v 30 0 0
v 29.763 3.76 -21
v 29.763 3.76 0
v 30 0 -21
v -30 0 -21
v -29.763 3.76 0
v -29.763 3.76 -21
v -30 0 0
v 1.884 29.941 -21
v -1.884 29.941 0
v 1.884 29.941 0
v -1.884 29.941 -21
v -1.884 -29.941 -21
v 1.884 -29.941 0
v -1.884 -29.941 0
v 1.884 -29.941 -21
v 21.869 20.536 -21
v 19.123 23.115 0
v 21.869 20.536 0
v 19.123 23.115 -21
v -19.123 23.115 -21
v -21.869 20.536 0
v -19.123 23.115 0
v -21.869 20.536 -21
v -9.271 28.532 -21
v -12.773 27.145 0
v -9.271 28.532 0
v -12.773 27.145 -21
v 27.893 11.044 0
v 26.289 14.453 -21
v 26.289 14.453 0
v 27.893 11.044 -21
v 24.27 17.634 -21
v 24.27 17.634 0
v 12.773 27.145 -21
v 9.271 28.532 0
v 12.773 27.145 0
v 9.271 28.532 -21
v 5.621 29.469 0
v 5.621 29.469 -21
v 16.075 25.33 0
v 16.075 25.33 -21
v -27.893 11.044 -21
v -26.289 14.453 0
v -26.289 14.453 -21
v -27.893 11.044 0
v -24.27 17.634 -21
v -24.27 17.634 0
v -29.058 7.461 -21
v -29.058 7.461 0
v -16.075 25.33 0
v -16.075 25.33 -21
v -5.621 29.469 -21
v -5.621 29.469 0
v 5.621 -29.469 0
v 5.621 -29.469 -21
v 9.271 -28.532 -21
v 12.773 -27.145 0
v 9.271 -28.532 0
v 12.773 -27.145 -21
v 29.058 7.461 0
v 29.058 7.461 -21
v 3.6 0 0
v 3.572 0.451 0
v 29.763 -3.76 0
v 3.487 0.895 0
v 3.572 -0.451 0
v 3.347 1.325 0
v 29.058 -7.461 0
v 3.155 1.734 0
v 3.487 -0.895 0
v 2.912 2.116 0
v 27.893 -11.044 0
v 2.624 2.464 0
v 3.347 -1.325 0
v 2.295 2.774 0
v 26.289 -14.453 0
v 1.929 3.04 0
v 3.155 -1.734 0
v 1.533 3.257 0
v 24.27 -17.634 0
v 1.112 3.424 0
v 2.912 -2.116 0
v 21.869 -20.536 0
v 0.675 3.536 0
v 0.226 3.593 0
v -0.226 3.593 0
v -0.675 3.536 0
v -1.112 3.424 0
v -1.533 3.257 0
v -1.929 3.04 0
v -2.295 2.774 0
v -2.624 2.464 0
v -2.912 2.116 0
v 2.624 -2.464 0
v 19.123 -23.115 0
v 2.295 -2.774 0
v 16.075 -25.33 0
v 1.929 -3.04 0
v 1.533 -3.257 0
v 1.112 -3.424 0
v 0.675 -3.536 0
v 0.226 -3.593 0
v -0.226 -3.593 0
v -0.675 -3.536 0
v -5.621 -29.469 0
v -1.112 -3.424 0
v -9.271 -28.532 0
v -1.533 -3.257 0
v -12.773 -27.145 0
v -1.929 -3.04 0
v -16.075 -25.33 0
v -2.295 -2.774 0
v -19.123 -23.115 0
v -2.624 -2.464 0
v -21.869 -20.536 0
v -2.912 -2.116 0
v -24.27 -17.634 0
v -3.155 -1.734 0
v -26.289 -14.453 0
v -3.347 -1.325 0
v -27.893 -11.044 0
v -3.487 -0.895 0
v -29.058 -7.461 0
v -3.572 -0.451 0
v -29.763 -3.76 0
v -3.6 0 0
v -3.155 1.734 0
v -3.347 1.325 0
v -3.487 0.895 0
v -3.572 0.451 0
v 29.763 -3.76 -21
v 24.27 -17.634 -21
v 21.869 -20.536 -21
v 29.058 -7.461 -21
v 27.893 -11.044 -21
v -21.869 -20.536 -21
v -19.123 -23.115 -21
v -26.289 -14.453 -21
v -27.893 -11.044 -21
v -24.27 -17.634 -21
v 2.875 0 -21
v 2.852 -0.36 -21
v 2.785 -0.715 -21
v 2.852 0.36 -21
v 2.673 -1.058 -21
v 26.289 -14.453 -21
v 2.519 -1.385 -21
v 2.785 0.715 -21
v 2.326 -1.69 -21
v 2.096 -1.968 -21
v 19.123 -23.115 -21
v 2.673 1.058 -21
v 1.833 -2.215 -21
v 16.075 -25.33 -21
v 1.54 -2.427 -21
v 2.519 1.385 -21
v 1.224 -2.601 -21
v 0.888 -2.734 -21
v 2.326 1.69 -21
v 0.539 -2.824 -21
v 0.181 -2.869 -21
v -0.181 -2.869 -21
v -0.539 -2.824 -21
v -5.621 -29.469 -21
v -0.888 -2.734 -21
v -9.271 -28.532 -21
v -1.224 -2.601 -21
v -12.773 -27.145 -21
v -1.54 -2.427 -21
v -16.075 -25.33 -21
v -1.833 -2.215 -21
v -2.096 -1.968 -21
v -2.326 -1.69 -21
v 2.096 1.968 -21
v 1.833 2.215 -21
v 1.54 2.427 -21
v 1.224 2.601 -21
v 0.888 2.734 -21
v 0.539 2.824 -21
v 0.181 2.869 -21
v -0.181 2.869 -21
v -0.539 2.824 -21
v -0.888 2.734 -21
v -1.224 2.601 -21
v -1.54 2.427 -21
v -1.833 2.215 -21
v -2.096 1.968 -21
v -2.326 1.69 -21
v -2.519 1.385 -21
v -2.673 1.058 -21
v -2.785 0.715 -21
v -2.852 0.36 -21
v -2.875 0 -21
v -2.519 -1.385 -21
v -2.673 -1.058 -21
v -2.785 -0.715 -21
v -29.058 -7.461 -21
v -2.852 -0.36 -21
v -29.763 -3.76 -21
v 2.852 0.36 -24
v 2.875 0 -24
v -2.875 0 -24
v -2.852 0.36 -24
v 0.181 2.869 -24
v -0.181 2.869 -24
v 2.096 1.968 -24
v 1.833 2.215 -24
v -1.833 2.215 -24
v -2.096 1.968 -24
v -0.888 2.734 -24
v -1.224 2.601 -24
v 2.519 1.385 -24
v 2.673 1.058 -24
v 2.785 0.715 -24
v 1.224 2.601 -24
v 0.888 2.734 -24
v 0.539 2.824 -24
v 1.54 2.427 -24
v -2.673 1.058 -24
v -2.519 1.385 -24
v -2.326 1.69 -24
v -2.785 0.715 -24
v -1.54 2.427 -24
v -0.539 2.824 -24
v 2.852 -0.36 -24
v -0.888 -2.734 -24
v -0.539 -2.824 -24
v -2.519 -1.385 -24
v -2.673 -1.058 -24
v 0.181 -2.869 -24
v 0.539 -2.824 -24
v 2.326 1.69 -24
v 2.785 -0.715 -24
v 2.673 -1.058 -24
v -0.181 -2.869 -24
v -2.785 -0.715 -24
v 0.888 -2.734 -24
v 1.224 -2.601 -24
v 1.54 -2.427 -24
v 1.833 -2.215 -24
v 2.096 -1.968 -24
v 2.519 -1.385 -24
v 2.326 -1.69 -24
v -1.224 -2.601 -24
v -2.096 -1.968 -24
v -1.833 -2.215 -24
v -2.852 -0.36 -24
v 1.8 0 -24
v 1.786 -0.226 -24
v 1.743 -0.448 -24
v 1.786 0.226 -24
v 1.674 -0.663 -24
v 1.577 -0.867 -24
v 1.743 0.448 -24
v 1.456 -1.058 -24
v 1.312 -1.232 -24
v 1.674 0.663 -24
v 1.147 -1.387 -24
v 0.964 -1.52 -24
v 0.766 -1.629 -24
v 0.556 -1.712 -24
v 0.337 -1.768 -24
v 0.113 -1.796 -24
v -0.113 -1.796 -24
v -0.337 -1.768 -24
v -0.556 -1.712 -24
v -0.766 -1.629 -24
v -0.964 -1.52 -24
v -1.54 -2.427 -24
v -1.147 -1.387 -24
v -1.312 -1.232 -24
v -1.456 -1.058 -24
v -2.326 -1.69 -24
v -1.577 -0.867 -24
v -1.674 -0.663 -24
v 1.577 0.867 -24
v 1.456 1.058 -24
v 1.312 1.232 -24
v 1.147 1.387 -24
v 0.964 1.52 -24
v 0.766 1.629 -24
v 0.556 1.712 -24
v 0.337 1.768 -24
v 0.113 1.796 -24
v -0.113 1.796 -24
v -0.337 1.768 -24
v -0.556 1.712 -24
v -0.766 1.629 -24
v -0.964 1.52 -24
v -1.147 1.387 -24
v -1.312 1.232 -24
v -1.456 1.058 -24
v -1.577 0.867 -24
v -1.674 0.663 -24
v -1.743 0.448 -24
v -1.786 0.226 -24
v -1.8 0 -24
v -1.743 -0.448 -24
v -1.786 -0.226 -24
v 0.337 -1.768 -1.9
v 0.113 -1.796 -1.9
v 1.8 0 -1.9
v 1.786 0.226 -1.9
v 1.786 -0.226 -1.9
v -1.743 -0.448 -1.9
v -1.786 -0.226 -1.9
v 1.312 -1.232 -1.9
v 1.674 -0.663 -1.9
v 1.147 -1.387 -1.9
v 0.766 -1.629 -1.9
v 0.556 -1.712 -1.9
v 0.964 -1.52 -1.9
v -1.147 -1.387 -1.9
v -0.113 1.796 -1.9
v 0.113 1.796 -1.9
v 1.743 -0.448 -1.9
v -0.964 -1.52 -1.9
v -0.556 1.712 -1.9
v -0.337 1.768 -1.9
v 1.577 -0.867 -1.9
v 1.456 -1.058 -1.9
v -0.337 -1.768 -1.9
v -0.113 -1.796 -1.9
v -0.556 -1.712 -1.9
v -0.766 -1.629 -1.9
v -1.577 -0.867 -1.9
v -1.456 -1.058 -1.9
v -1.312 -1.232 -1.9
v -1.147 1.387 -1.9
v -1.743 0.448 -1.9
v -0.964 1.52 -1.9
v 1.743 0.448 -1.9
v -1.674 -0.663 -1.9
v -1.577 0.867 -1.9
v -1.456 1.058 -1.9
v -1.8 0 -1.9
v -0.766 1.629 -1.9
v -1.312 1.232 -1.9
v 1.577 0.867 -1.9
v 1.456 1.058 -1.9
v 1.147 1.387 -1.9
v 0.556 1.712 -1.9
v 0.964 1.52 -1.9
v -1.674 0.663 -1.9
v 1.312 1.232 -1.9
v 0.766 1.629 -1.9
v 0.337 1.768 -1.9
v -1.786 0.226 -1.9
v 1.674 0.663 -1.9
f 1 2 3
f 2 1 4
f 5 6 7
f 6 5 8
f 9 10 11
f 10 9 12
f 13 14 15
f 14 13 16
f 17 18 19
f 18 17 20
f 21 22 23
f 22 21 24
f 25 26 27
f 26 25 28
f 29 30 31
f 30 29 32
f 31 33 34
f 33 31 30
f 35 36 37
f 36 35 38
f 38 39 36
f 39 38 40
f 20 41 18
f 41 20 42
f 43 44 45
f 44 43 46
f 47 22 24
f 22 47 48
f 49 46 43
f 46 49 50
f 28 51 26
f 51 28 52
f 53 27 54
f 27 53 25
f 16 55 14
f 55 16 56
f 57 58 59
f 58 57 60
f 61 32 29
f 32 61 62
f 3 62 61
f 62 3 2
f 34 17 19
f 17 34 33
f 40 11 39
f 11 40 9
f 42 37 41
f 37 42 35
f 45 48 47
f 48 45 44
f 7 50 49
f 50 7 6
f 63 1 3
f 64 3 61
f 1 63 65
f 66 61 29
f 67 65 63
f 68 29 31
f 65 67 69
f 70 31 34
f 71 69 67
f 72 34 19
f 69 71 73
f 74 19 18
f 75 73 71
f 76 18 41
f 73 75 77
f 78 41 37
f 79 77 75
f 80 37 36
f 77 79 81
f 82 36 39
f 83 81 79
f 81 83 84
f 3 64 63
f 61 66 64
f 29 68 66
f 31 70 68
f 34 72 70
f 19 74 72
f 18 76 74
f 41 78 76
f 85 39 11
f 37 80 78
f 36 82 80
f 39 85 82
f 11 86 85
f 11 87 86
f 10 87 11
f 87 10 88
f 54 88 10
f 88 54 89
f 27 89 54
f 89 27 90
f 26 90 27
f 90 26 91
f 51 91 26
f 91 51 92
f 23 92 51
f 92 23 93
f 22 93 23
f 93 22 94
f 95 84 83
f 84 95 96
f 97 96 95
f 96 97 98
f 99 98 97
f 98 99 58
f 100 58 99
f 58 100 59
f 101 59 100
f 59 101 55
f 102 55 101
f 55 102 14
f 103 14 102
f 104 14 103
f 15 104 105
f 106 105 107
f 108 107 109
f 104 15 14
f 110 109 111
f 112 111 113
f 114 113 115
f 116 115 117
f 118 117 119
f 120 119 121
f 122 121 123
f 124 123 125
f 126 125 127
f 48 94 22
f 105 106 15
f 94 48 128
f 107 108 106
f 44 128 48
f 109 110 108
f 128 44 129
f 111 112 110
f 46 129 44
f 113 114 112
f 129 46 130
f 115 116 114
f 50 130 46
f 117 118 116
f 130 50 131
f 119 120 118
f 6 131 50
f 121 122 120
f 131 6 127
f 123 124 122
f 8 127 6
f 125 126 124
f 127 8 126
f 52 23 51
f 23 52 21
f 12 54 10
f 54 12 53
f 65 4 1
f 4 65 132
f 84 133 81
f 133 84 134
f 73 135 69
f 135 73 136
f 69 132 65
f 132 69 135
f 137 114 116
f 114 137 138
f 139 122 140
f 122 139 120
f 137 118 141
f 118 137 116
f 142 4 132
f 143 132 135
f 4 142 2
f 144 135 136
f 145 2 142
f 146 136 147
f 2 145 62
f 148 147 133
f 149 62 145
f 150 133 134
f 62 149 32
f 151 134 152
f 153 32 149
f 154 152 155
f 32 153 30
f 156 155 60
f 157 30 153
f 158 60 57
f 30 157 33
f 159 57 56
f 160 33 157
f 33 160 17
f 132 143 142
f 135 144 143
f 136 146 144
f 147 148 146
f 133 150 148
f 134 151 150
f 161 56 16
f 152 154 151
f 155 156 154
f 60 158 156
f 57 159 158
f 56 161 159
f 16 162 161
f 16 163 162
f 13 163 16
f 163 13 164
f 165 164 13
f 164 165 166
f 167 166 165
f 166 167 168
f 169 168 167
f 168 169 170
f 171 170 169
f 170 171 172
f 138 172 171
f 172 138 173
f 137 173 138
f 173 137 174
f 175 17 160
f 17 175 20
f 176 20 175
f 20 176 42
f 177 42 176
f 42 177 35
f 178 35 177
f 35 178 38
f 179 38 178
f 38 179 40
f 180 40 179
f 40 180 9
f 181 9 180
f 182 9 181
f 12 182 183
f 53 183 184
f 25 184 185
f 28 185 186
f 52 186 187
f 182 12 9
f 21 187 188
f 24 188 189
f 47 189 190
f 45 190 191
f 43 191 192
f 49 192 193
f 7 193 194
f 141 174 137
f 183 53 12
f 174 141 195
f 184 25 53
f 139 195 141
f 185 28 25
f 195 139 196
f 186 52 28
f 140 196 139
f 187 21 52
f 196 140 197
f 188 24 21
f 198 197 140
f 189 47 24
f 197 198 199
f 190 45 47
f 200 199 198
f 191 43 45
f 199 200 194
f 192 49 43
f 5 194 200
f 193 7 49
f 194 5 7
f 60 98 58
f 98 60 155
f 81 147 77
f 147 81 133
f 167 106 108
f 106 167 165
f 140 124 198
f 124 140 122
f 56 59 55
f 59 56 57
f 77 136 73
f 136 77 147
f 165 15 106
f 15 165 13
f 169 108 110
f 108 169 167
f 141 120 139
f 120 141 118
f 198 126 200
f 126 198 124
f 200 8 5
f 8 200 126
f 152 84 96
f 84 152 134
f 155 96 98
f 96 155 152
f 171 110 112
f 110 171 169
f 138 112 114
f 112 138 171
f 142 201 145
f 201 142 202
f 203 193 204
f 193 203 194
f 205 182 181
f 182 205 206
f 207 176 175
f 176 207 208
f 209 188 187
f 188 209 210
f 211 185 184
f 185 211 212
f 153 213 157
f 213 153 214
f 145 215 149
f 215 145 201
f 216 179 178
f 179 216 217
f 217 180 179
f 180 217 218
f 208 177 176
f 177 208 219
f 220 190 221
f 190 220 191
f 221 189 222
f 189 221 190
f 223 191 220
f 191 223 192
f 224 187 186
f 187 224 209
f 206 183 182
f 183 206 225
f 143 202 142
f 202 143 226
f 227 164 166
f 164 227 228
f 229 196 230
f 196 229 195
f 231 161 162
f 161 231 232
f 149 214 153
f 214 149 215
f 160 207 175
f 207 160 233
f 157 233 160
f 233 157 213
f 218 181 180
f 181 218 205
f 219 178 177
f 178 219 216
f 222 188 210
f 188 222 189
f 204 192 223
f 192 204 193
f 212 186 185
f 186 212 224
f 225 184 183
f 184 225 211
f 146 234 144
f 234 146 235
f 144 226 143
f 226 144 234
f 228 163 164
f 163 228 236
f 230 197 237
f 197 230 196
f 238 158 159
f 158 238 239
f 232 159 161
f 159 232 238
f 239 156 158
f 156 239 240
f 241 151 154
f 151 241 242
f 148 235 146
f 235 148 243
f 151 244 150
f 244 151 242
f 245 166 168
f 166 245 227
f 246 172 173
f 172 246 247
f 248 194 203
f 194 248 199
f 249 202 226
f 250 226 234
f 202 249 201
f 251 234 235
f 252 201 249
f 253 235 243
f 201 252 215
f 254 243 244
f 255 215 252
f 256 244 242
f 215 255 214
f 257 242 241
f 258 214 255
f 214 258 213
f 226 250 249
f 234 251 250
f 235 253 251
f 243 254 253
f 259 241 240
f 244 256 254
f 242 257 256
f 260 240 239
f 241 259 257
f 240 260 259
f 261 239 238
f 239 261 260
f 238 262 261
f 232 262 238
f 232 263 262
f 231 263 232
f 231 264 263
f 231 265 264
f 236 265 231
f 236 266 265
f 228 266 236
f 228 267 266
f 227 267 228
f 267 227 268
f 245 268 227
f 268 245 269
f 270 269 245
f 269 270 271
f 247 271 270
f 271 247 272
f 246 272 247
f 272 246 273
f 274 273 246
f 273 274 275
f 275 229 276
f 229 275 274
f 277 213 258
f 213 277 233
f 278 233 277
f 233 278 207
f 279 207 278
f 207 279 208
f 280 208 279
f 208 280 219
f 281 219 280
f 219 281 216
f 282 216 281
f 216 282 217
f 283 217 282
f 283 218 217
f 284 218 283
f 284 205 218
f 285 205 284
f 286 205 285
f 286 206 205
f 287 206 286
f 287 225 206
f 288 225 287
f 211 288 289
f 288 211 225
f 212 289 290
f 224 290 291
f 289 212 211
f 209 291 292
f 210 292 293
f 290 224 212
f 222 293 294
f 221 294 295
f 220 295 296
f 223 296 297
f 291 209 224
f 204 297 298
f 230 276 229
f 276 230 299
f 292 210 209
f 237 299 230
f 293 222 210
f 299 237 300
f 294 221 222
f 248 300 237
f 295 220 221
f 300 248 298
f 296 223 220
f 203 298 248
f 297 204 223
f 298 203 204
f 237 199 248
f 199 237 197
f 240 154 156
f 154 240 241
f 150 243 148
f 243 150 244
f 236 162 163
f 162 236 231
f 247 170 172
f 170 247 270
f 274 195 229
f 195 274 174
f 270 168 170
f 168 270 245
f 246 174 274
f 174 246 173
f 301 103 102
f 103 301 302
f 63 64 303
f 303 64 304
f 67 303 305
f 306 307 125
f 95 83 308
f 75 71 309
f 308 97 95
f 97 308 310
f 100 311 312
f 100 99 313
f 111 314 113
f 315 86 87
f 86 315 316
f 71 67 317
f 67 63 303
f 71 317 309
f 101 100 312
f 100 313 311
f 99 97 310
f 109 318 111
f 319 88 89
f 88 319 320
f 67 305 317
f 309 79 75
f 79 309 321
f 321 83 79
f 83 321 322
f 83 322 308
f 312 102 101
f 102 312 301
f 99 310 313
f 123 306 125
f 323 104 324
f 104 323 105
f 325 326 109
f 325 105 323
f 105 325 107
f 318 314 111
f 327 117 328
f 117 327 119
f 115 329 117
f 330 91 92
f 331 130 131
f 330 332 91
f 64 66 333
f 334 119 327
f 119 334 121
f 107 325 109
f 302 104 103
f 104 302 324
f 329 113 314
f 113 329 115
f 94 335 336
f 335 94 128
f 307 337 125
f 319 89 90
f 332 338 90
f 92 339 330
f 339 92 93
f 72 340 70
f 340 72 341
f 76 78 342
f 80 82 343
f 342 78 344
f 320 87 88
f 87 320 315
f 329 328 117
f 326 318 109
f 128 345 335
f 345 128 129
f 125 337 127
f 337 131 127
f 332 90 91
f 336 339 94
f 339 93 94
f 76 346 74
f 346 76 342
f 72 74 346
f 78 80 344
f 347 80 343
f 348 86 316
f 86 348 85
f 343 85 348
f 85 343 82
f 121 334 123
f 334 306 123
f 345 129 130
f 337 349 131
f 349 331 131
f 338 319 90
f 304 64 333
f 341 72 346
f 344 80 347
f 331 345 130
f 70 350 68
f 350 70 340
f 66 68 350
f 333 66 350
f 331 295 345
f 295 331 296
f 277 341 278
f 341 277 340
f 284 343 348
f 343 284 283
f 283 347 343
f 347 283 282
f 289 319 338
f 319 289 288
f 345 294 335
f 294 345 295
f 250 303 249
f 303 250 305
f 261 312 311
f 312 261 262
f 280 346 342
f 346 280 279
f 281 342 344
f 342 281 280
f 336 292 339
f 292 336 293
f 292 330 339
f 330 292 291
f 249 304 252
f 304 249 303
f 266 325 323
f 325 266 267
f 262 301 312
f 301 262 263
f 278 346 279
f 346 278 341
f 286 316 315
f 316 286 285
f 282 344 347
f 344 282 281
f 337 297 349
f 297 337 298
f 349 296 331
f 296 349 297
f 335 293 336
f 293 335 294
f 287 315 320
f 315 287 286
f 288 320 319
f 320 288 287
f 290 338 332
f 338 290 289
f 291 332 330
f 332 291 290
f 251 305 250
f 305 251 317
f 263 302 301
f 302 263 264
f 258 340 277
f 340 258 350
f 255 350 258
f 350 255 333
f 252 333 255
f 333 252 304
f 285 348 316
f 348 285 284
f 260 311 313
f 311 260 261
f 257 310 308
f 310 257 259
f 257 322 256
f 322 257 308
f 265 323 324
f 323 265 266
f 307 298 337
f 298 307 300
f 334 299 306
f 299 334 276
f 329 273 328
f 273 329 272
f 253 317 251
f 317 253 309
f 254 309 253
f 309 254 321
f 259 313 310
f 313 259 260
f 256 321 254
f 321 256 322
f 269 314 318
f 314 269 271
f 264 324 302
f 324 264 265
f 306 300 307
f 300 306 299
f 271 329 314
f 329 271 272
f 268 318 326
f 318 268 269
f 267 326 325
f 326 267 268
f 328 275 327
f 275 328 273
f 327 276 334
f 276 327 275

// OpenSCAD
$fn = 50;

difference() {
	union() {
		translate(v = [0, 0, -21.0]) {
			cylinder(h = 21, r = 30.0);
		}
		#translate(v = [0, 0, -24.0]) {
			cylinder(h = 24, r = 2.875);
		}
	}
	union() {
		translate(v = [0, 0, 0]) {
			rotate(a = [0, 0, 0]) {
				difference() {
					union() {
						translate(v = [0, 0, -24.0]) {
							cylinder(h = 24, r = 1.5);
						}
						translate(v = [0, 0, -1.9]) {
							cylinder(h = 1.9, r1 = 1.8, r2 = 3.6);
						}
						translate(v = [0, 0, -24.0]) {
							cylinder(h = 24, r = 1.8);
						}
						translate(v = [0, 0, -24.0]) {
							cylinder(h = 24, r = 1.5);
						}
					}
					union();
				}
			}
		}
	}
}
